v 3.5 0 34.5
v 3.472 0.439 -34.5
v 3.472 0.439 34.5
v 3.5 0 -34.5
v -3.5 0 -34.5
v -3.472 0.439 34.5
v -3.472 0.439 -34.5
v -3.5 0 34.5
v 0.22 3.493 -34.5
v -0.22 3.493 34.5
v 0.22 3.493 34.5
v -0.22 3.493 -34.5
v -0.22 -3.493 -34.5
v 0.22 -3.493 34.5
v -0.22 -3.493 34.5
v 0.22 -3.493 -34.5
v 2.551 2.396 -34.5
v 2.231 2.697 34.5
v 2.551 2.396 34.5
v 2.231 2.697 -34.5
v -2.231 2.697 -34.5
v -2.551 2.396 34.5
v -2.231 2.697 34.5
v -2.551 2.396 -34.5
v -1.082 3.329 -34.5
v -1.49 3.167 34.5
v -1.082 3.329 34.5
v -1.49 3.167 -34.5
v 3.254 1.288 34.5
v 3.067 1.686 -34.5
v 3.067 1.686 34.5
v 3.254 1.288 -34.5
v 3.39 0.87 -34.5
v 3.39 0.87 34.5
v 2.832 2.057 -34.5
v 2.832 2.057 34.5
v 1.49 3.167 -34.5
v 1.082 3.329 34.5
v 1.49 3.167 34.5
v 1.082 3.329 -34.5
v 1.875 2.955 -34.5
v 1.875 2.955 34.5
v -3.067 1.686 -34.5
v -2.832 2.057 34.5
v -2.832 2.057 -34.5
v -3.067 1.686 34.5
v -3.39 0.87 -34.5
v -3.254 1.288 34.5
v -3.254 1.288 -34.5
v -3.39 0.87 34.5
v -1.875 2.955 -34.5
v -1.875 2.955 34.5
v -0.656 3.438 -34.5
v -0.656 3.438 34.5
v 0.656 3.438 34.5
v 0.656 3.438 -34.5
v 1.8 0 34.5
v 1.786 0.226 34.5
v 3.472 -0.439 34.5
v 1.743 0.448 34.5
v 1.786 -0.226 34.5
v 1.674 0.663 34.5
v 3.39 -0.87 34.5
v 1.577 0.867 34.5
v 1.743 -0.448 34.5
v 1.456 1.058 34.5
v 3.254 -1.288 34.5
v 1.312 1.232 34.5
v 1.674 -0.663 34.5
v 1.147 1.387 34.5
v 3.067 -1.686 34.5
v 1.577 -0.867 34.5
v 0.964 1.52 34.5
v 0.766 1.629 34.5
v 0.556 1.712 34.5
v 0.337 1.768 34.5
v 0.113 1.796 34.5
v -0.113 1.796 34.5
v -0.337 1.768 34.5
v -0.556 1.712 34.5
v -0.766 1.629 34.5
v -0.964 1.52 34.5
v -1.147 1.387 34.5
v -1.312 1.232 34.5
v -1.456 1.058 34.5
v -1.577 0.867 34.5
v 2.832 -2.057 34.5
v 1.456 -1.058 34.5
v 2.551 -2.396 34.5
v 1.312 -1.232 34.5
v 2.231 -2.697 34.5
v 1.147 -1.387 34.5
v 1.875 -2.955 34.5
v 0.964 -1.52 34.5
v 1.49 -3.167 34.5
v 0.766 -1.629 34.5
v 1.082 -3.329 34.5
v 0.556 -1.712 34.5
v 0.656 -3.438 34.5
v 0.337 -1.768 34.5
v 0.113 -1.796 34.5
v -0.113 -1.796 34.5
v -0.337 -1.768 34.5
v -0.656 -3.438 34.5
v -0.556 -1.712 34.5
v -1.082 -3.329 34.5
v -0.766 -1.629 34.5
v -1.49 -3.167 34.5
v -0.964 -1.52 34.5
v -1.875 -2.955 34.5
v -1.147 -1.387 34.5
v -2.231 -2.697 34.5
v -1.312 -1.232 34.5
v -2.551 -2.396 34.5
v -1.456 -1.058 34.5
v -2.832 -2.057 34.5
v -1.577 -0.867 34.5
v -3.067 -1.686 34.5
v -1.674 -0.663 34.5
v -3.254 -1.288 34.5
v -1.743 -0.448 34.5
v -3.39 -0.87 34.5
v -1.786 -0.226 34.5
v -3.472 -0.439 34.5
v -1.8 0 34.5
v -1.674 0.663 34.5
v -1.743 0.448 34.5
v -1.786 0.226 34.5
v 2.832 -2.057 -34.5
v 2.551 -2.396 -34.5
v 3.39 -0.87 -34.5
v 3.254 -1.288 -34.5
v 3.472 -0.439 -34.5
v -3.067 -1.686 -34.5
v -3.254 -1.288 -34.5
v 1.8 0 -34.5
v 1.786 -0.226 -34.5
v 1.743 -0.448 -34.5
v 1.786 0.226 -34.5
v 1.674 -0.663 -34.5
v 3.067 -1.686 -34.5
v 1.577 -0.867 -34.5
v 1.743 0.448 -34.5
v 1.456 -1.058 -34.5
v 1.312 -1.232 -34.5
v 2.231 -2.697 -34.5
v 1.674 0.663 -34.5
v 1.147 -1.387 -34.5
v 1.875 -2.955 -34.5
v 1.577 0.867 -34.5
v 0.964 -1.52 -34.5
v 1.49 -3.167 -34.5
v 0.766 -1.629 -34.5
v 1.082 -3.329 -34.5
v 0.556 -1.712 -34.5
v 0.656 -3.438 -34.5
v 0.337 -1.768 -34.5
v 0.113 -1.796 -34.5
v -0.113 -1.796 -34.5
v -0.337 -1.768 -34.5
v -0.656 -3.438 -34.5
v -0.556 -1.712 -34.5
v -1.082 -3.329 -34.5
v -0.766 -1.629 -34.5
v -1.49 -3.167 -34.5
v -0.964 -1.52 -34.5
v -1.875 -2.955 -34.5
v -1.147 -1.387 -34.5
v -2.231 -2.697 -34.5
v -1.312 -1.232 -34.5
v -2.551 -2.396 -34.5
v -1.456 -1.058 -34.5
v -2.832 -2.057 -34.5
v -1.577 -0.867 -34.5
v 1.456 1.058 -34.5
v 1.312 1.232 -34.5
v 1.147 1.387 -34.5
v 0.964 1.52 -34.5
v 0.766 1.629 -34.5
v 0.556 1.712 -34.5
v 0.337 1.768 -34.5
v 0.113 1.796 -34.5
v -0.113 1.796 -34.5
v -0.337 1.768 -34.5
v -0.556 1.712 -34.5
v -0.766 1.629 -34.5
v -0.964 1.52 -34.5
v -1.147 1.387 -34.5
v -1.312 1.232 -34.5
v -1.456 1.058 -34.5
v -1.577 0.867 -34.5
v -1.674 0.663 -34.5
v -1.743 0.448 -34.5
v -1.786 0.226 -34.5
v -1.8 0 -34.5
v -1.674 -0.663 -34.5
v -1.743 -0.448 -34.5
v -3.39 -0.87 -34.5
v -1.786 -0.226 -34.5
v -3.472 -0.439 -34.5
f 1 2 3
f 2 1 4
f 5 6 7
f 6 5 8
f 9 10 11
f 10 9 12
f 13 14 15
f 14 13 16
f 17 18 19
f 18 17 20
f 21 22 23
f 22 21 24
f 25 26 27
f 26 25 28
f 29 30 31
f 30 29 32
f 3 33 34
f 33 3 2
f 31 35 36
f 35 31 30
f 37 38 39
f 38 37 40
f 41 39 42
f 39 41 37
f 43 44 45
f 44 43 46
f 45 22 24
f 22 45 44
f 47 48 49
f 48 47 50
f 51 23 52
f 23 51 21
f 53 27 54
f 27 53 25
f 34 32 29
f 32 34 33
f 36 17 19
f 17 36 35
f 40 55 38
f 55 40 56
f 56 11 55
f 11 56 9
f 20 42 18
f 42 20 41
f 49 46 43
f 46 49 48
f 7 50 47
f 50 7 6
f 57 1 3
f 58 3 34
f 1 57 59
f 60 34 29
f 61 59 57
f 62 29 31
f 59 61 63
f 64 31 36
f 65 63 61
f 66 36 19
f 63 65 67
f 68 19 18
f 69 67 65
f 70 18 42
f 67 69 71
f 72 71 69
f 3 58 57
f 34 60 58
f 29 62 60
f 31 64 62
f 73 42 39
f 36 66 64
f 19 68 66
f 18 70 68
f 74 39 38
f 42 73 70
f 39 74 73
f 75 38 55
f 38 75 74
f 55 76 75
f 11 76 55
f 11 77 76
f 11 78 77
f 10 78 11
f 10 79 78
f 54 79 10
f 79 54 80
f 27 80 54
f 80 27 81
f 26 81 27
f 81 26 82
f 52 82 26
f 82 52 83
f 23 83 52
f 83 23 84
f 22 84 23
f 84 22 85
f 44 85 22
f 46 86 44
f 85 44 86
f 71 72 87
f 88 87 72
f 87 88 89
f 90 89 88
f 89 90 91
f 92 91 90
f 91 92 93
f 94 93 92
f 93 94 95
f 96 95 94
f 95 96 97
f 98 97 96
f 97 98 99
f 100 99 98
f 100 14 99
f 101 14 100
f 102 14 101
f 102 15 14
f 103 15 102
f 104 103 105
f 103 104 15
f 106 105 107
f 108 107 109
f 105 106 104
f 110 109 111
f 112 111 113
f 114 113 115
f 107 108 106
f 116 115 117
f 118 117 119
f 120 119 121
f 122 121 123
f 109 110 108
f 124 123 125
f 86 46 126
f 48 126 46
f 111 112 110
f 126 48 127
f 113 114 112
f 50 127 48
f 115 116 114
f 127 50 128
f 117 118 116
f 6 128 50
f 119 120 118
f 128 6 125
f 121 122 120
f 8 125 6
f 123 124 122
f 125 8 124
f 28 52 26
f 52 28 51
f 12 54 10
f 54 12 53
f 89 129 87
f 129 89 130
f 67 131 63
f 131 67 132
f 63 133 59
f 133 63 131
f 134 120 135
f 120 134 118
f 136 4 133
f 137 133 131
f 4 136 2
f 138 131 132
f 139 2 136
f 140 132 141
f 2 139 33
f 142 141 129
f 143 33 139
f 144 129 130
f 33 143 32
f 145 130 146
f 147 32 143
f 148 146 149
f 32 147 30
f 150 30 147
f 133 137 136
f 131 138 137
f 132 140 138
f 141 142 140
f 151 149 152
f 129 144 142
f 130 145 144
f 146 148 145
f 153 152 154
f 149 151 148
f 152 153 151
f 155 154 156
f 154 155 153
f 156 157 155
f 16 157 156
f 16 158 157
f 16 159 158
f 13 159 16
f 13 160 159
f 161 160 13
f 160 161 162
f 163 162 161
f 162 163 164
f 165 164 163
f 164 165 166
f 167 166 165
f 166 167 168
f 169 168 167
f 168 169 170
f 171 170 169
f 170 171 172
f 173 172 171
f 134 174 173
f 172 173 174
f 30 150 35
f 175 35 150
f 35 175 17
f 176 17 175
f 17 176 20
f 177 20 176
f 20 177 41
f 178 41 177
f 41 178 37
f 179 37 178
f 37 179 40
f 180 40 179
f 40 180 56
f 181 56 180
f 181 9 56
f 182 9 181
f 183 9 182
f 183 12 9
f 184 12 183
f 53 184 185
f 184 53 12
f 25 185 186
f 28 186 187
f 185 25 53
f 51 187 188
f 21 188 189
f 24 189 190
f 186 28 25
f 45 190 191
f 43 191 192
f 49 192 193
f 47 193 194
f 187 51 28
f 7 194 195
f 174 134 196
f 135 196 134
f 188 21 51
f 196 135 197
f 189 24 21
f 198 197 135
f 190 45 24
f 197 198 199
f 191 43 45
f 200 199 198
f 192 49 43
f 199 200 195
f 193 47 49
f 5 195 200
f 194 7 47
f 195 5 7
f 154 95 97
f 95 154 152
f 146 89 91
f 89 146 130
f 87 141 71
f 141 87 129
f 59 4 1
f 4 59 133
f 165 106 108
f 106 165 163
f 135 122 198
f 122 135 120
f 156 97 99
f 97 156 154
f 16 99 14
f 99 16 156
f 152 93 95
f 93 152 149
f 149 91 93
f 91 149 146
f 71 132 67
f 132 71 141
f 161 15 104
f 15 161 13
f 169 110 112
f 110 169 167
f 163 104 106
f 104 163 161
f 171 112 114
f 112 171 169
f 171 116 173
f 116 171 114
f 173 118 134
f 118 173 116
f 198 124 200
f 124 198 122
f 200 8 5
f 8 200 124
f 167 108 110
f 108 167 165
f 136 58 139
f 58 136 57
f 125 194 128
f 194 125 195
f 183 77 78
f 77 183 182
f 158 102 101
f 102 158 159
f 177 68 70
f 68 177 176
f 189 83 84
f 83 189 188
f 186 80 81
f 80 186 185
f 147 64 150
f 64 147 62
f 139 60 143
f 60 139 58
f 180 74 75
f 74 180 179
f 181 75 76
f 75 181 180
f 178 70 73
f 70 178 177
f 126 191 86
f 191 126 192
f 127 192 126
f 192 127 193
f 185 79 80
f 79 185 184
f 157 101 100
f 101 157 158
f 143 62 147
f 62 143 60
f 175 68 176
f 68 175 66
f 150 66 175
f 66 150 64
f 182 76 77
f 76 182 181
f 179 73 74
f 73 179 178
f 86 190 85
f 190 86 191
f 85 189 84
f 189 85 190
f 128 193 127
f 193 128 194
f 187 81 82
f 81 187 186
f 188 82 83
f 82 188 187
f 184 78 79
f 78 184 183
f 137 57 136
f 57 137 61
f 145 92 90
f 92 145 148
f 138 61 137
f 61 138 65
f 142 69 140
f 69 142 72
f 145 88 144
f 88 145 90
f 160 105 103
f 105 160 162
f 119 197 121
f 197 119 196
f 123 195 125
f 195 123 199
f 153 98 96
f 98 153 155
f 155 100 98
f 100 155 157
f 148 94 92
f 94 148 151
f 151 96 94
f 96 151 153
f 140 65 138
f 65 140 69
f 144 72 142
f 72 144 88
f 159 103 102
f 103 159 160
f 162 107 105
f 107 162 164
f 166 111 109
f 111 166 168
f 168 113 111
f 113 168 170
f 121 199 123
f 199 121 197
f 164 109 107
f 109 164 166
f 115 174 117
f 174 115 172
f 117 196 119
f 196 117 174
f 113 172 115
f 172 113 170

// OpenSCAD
$fn = 50;


difference() {
	union() {
		translate(v = [0, 0, -34.5000000000]) {
			cylinder(h = 69, r = 3.5000000000);
		}
	}
	union() {
		translate(v = [0, 0, -100.0000000000]) {
			cylinder(h = 200, r = 1.8000000000);
		}
	}
}
